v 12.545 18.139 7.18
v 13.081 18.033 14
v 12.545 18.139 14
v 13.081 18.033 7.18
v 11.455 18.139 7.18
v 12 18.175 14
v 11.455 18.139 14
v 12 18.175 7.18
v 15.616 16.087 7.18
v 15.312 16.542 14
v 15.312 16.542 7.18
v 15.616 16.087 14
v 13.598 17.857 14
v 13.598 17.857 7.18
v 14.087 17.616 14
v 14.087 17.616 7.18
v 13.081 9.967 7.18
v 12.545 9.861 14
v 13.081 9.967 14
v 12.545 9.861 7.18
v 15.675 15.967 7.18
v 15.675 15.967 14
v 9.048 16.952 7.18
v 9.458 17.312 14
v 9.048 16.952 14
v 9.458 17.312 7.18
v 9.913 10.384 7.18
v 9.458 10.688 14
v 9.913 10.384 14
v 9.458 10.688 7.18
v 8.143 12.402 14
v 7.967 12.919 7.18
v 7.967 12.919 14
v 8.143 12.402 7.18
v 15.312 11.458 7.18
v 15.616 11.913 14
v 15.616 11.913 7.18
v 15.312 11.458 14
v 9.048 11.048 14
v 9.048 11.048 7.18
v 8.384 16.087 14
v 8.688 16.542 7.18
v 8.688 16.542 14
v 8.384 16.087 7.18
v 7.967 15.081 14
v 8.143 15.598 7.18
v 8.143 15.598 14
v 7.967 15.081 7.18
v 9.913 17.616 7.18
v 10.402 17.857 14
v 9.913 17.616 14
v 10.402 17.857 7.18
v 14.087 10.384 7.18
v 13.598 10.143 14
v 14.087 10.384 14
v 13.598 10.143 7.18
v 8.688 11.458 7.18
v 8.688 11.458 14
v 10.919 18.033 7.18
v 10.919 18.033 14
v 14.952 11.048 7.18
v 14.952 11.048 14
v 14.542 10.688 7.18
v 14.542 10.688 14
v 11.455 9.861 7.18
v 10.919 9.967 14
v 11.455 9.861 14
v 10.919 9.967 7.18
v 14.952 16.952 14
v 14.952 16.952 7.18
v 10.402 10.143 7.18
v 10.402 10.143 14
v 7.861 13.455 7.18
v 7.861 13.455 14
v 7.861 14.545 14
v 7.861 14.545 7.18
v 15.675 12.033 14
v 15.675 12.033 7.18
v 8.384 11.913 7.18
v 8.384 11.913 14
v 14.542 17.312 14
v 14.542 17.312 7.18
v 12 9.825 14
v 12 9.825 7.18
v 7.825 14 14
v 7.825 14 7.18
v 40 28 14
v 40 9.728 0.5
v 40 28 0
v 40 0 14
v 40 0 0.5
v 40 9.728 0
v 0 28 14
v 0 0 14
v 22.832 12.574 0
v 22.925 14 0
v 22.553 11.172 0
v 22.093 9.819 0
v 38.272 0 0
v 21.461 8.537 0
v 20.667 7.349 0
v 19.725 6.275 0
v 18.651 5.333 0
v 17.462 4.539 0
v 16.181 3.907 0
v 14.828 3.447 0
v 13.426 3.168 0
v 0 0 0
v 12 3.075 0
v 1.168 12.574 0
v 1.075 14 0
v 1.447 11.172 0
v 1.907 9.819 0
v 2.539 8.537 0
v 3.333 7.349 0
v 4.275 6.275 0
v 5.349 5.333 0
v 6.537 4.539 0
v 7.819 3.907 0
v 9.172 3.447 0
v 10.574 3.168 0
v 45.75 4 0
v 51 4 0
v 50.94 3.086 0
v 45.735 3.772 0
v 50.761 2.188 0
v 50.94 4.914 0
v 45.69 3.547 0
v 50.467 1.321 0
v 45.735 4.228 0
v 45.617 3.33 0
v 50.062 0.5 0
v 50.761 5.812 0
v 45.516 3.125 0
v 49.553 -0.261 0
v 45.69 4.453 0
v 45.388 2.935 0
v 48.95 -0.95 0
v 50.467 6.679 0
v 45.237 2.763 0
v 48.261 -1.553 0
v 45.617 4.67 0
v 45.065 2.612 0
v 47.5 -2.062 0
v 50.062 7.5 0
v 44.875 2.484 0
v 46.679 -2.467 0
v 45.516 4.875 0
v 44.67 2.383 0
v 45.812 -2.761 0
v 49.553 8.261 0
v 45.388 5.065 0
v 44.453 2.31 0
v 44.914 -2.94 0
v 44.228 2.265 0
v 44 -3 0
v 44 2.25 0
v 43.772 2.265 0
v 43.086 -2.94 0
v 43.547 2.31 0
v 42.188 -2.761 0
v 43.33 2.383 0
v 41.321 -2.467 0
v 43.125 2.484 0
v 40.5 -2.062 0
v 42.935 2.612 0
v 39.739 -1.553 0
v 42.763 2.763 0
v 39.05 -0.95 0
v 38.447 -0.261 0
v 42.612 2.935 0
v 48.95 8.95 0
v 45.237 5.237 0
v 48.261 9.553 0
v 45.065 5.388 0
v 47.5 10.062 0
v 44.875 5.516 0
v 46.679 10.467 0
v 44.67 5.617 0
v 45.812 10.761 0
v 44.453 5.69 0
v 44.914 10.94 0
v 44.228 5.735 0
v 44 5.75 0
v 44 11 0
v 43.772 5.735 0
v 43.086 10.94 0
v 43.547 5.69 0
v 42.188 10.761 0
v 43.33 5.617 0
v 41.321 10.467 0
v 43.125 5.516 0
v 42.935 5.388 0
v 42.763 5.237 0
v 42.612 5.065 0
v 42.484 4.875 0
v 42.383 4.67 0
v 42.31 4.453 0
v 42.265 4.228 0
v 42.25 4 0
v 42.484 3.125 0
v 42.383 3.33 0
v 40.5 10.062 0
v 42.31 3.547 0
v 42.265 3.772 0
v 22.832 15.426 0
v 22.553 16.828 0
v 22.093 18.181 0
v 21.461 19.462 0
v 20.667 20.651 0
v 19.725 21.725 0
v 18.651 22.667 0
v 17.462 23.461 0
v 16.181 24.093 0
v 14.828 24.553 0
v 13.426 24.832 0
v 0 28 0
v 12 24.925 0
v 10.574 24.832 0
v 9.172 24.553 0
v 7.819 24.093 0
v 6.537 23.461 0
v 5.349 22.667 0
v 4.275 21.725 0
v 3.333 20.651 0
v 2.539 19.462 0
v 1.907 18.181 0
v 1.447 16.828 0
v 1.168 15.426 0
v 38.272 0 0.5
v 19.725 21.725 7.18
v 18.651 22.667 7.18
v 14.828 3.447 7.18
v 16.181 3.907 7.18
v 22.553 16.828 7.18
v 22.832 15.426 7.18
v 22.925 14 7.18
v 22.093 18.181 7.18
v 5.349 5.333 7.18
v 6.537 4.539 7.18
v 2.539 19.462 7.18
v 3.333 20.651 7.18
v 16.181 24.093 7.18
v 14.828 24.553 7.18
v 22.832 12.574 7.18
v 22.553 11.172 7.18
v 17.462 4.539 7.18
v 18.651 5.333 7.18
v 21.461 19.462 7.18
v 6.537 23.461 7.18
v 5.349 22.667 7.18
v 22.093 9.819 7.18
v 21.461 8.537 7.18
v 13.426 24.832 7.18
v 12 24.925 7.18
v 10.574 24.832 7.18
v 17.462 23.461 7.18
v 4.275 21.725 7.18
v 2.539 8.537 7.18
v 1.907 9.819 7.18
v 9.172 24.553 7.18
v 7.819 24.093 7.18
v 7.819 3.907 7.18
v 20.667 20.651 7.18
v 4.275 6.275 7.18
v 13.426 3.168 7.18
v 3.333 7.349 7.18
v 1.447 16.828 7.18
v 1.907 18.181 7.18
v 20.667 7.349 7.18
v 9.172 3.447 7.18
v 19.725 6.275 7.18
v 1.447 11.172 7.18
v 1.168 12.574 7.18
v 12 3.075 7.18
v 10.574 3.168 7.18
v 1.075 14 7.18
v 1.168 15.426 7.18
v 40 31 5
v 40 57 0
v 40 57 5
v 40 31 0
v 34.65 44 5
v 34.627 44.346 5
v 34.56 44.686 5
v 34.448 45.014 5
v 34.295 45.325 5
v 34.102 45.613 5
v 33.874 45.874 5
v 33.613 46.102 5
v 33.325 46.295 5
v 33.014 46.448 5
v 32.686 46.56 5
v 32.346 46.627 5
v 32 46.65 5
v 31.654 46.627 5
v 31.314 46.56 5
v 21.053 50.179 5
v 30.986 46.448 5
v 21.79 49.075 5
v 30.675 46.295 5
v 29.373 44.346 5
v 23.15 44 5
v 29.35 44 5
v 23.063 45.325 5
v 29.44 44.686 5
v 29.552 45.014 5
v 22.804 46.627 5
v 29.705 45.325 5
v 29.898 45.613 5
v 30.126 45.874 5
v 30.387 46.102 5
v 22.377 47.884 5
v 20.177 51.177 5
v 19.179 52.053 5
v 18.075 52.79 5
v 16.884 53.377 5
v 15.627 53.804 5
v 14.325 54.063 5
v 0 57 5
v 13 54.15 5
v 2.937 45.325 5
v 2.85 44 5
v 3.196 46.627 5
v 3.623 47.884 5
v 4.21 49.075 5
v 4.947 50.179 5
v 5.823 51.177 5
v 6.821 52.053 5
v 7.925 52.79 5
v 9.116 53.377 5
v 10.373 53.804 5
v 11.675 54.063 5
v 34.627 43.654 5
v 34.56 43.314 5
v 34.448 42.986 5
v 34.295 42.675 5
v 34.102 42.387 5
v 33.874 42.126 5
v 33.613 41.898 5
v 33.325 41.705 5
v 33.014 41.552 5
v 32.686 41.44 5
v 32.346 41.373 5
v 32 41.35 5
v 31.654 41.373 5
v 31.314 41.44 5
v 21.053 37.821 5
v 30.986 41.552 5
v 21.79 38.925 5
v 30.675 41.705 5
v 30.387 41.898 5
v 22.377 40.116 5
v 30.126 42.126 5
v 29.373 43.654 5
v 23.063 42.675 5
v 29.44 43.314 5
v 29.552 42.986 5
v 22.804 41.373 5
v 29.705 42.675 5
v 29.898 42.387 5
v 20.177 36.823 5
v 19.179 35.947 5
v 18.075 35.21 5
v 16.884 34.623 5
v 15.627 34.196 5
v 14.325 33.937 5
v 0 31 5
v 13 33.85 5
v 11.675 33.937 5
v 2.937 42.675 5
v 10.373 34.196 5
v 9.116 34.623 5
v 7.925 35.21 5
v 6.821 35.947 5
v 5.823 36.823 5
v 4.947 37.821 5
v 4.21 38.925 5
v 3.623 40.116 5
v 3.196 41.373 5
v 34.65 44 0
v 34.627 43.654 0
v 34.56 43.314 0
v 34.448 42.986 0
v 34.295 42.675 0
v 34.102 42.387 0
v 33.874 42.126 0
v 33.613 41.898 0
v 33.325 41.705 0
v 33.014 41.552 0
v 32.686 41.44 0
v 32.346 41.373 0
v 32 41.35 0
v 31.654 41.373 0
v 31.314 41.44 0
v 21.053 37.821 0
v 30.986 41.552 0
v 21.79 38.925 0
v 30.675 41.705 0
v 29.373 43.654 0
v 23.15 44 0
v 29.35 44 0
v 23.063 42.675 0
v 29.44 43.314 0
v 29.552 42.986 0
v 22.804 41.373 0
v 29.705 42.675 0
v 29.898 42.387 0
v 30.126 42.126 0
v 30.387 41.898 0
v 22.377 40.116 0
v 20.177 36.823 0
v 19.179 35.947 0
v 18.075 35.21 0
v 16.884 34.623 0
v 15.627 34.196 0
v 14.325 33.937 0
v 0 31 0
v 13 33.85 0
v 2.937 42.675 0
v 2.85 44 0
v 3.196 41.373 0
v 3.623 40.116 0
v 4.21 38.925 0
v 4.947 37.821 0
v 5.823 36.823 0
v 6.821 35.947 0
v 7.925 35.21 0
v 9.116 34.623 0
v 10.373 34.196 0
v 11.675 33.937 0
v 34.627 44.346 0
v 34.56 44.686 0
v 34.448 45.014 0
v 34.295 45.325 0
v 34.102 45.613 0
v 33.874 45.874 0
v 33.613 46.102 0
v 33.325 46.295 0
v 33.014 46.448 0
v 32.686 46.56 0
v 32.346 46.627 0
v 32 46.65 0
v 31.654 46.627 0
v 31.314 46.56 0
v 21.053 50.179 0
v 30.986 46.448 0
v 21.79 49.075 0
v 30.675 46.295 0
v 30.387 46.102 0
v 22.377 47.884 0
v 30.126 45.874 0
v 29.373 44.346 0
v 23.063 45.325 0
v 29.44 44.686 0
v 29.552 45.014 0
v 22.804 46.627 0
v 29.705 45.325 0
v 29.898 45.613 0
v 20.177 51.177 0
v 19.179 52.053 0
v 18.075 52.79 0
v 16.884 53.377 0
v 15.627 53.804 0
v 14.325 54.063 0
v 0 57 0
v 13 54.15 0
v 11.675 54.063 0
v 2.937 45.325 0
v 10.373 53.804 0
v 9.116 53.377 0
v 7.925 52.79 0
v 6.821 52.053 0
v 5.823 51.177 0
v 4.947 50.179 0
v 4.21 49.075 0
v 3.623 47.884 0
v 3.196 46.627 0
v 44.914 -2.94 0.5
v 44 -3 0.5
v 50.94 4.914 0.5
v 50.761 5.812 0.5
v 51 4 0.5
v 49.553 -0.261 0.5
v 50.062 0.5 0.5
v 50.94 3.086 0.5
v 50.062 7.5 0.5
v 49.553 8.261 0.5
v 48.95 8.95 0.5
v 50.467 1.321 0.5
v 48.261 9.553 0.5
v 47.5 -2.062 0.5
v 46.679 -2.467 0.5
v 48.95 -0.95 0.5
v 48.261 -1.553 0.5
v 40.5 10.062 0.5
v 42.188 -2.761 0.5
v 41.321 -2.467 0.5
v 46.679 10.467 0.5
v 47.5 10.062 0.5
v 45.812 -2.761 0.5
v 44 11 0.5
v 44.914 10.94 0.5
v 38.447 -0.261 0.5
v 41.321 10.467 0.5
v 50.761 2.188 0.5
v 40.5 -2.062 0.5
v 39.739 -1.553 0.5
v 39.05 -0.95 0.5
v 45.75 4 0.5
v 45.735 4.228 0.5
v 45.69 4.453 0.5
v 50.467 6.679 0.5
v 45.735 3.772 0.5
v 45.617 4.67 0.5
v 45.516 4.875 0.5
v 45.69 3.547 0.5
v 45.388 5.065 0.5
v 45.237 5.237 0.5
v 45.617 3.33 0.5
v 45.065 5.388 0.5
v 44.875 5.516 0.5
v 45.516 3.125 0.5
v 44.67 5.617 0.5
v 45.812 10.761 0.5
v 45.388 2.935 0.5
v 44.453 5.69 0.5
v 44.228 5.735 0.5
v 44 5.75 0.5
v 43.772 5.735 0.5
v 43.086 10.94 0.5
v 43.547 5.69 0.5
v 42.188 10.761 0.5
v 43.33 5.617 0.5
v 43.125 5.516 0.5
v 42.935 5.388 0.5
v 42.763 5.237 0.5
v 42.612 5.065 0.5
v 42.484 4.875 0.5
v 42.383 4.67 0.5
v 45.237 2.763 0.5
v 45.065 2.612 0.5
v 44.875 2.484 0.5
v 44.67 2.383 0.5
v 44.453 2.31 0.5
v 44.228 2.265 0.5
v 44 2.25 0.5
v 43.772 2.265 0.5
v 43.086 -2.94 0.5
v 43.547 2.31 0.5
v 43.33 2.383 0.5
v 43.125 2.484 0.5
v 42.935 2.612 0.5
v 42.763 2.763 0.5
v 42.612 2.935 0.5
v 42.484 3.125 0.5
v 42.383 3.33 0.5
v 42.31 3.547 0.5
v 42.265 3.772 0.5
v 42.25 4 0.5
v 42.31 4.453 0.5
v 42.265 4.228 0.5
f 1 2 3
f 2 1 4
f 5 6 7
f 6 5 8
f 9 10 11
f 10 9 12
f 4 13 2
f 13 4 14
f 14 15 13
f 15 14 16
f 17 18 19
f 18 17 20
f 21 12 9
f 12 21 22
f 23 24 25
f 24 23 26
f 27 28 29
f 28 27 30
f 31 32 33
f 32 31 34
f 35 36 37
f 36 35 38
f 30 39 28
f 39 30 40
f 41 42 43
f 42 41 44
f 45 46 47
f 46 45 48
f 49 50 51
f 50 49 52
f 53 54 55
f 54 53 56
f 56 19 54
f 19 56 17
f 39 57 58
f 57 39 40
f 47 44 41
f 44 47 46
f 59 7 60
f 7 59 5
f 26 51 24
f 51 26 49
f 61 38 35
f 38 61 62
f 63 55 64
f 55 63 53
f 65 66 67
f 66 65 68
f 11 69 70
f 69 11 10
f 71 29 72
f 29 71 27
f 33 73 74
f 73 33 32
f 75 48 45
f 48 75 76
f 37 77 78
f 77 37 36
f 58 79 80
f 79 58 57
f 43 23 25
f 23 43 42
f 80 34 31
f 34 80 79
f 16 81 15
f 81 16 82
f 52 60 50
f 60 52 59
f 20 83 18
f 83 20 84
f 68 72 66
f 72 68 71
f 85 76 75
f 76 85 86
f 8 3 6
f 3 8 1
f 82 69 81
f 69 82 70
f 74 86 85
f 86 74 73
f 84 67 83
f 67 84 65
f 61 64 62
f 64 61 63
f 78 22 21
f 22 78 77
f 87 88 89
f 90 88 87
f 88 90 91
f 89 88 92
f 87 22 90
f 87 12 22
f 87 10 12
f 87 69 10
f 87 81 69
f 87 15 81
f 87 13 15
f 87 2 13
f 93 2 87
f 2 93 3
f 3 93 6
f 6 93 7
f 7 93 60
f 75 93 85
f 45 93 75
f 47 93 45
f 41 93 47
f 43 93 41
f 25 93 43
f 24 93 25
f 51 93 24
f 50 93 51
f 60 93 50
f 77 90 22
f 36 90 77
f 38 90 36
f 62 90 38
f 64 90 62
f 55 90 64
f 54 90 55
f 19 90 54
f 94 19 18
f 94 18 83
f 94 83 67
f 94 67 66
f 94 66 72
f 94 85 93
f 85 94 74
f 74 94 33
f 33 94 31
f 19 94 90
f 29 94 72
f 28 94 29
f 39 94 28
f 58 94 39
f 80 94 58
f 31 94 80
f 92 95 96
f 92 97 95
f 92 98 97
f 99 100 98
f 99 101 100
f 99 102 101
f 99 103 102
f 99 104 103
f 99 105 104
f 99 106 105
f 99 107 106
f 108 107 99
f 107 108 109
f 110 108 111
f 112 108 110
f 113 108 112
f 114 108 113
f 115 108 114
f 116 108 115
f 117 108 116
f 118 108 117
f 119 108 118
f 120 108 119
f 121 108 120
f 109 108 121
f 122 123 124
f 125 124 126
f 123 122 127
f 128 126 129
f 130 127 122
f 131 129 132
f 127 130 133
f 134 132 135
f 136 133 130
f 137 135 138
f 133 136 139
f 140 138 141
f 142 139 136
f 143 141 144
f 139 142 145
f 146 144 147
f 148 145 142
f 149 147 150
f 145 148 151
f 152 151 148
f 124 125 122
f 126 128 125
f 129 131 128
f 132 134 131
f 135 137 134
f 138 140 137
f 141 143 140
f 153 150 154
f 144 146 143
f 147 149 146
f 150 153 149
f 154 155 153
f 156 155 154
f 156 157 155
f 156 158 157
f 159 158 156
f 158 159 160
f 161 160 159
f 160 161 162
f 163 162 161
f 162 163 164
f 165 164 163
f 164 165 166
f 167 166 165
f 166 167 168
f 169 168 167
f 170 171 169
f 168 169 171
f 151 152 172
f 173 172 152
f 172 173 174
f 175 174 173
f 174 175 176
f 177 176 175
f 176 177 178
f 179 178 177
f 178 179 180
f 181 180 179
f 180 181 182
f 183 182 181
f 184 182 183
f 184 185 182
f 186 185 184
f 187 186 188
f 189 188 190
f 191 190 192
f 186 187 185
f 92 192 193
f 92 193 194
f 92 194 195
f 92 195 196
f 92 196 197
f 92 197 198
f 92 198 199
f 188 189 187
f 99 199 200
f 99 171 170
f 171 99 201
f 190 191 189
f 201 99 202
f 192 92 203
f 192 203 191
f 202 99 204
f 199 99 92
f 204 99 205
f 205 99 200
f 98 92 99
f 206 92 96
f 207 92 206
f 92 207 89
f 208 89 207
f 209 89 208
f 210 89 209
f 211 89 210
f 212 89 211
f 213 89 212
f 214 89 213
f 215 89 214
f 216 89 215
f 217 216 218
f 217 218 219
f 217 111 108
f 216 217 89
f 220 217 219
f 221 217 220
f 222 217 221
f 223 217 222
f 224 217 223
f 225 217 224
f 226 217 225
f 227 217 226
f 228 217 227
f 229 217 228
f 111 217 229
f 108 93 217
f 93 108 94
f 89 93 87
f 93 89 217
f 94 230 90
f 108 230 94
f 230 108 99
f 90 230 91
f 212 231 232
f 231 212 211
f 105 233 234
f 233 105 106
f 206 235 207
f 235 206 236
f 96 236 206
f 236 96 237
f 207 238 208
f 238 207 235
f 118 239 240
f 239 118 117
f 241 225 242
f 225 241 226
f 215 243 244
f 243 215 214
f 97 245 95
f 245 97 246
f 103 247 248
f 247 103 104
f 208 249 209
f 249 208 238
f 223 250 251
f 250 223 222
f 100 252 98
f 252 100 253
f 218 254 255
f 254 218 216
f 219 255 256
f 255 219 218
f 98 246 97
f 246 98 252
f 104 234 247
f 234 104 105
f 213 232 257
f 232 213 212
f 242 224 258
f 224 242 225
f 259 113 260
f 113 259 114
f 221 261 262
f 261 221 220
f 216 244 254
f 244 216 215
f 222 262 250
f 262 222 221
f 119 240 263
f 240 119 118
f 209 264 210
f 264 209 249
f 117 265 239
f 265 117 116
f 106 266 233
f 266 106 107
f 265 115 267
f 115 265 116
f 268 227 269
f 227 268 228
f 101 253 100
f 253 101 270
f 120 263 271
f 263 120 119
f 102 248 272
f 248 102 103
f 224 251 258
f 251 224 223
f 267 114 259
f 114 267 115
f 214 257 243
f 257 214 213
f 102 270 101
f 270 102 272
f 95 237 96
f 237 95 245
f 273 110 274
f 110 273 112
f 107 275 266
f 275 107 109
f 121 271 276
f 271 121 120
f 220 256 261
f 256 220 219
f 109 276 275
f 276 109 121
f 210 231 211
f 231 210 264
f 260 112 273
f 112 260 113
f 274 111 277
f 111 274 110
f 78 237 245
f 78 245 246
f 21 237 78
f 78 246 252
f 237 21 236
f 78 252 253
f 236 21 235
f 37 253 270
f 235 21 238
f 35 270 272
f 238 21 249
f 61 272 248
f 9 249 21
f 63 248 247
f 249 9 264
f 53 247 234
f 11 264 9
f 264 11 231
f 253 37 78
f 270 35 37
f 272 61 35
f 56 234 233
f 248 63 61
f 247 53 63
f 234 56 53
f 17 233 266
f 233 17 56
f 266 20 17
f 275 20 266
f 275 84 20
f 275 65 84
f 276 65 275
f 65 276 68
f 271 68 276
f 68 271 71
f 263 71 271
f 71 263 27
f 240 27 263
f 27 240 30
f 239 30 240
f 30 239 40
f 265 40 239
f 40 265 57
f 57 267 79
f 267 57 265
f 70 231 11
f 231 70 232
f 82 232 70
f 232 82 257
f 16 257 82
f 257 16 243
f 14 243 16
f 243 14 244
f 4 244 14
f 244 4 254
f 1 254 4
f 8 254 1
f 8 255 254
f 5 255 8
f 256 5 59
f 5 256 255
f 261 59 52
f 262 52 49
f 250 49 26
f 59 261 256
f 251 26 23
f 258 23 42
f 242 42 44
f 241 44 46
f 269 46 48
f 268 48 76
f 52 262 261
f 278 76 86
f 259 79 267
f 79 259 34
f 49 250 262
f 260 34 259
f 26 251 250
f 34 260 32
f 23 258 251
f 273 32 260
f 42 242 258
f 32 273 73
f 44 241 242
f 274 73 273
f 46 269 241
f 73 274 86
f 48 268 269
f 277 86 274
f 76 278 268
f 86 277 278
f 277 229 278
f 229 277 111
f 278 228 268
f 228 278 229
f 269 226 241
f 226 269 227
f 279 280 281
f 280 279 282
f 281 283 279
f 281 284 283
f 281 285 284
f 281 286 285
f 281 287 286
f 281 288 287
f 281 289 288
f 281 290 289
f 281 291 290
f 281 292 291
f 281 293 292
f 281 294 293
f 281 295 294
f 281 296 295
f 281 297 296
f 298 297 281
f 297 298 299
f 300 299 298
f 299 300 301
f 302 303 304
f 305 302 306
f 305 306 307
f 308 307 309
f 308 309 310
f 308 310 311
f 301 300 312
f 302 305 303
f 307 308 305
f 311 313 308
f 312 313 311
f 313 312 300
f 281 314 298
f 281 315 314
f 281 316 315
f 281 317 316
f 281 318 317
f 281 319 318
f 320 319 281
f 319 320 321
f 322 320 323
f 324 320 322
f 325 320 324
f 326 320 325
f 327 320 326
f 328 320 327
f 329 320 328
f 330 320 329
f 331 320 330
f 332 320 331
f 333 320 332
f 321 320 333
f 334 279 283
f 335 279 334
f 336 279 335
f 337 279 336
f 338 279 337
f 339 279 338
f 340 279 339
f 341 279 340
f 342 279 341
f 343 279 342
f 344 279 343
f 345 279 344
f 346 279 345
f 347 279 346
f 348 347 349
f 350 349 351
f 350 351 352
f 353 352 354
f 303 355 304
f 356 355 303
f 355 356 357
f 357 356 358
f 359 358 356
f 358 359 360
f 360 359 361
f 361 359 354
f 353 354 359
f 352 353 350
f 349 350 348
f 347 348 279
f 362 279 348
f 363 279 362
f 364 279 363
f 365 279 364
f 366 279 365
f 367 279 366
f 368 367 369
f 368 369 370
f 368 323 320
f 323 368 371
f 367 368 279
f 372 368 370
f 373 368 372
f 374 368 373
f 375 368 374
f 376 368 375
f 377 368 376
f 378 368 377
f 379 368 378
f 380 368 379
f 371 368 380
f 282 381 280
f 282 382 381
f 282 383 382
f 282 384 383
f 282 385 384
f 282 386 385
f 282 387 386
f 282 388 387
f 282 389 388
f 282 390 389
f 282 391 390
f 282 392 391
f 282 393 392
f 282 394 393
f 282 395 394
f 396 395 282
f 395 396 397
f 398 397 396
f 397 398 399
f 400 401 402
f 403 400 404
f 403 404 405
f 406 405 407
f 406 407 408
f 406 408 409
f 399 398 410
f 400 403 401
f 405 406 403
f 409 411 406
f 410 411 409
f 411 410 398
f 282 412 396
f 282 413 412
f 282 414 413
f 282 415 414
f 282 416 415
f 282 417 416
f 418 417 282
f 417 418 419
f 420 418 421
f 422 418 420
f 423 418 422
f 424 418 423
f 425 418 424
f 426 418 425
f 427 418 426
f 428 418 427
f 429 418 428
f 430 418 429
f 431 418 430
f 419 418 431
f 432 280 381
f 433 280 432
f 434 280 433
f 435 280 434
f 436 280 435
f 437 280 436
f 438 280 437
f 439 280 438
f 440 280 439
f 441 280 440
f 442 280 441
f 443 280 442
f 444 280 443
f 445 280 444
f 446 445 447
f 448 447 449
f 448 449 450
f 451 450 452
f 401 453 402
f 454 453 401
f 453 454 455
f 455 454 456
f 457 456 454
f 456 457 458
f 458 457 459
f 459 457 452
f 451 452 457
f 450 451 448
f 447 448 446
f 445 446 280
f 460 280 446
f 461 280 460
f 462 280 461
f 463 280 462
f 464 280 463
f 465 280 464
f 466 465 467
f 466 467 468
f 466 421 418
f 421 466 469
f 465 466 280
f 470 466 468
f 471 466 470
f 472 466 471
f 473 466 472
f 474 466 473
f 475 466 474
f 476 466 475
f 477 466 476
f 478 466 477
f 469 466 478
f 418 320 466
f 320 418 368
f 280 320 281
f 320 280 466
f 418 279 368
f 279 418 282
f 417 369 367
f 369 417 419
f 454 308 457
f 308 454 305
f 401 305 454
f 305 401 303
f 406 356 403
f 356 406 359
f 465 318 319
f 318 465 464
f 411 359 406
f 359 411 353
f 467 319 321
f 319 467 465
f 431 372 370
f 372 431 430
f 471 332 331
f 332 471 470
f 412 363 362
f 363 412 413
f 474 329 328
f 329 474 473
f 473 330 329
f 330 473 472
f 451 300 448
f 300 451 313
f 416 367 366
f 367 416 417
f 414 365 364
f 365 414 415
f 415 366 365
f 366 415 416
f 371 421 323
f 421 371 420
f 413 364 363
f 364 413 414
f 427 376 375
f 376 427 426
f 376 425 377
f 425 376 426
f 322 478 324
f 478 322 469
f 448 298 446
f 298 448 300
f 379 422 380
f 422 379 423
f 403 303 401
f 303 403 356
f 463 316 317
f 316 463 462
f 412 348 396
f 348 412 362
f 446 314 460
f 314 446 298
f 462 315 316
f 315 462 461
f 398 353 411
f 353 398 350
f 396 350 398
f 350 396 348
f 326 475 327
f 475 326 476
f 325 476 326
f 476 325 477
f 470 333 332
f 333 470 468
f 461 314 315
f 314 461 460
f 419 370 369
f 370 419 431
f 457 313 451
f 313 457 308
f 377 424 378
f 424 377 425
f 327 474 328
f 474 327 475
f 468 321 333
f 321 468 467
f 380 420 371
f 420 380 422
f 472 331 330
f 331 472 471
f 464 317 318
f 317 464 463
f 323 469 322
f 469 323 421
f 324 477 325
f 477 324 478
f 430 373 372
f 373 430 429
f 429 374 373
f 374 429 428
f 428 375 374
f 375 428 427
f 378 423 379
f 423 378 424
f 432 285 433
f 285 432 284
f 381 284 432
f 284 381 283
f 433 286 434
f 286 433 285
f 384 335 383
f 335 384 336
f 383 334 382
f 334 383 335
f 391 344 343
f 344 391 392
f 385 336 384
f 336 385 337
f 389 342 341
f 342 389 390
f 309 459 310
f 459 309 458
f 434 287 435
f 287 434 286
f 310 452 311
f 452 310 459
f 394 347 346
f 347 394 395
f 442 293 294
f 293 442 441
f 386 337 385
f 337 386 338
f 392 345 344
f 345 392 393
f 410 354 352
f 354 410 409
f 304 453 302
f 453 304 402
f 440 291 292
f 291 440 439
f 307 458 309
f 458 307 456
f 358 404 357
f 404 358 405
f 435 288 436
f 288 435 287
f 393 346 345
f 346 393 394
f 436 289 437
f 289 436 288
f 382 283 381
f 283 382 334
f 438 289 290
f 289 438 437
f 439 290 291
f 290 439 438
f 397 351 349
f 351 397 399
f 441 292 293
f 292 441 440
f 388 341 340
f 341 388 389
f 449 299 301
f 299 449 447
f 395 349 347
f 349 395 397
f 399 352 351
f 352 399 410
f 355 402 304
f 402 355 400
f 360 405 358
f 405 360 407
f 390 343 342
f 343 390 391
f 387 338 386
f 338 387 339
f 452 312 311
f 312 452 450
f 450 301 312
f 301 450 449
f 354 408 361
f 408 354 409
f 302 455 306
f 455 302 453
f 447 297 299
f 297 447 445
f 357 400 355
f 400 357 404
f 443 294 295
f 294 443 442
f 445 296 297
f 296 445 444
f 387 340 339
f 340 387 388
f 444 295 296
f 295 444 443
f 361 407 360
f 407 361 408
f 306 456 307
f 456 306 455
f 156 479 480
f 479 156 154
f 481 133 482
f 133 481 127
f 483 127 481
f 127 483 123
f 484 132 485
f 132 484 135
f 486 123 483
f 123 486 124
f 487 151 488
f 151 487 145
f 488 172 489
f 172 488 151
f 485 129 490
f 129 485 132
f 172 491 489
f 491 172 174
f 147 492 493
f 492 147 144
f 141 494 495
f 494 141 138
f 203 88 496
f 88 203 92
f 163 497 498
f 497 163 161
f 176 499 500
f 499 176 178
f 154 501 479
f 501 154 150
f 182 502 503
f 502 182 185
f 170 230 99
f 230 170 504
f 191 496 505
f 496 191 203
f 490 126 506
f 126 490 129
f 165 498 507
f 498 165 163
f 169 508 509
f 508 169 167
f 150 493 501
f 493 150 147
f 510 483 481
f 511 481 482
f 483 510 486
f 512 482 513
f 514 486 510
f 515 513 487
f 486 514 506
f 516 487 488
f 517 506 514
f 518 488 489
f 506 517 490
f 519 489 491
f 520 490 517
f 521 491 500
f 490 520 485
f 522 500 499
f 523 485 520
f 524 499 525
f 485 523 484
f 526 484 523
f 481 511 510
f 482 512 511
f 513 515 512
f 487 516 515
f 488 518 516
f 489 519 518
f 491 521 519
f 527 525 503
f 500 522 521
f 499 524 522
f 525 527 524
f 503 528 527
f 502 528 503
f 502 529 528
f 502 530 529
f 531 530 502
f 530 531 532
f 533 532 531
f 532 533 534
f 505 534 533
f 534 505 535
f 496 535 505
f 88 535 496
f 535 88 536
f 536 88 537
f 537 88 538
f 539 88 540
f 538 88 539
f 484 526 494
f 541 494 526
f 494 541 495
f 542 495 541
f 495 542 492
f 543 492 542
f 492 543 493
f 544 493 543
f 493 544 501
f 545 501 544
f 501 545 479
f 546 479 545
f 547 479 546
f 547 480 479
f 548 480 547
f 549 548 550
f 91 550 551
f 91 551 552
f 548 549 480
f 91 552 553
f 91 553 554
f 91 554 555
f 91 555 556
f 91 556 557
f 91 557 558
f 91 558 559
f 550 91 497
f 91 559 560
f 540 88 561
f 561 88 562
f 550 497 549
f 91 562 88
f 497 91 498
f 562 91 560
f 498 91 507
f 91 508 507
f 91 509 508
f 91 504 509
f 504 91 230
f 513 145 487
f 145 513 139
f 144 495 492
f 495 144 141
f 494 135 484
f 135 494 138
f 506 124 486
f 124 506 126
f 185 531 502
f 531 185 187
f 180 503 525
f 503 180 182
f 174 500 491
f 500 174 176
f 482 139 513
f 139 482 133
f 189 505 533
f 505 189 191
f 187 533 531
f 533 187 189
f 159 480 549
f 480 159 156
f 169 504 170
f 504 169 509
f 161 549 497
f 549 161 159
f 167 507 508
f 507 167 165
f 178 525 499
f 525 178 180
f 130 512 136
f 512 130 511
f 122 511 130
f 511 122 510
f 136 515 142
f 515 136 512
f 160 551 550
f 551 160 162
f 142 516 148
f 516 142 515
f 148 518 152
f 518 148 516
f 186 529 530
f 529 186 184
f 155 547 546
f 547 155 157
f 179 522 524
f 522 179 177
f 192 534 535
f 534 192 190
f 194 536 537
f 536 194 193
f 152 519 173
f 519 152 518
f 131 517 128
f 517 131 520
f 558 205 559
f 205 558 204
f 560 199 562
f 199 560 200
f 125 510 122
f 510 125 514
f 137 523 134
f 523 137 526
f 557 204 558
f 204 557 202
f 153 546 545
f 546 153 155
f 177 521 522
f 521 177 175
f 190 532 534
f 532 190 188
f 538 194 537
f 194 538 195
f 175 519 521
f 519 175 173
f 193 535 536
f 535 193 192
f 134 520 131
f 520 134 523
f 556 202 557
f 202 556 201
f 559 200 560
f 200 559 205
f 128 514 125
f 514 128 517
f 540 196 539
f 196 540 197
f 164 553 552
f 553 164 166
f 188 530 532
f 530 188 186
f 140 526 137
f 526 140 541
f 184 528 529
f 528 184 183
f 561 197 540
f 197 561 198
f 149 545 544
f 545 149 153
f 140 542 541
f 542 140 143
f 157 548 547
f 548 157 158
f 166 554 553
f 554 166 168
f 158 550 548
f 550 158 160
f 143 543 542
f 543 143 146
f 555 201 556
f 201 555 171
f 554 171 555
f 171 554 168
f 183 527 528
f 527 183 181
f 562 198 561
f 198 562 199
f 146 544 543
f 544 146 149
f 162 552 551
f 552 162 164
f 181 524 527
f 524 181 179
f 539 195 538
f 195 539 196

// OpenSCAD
// file: parameters.scad
// =============================================================================
// Gen-CA — nightly 2026-10-13 (physics_scorer, honest magpylib watts)
// Break the plate limit instead of the physics: the 2026-10-11 scans showed watts keep rising with machine size, but Ø194 was the largest one-piece stator/rotor set that fits one 410 mm plate. Gen-CA makes the steel disc the structural rotor and prints the magnet carrier as 8 bolt-on arcs per rotor plus a separate D-flat hub, opens the stator centre, and prints the 12 bobbin bases in place inside their stator bays, so a much bigger R84 / Ø226 machine (bobbins r64–104, 4.95 mm copper, 7.55 mm magnet gap) still packs on ONE plate.
// Clocking 0 deg (magnets N facing S) + D-flat keyed bore + index notch + flip-symmetric hole map.
// Windable 2-piece bobbin; turns = physics_scorer turns_fit; copper only between flanges.
// Steel back-iron: 2× Ø194 × 4.76 mm (3/16") mild-steel discs (steel_backiron_disc.dxf); magnets sit ON the steel
// (through-pockets) -> score with --back-iron. Night 2026-10-13.
// =============================================================================
topology            = "dual_rotor";

// --- Wire / winding (physics_scorer winding-fit) -------------------------------
wire_awg            = 26;
wire_od             = 0.45;     // insulated OD mm (bare 0.405)
fill_realistic      = 0.65;     // insulated-wire area / window (DENSE layered wind with a jig; scorer cap 0.65)
turns               = 366;       // = physics_scorer turns_fit (do NOT raise)
coil_former_type    = "bobbin";
coil_core_inset     = 18.10;     // radial copper build: hub = copper boundary inset by this
wind_build_axial    = 0.0;      // nothing proud of the flanges
wind_build_radial   = 0.0;

// --- Bobbin (base + lid) ---------------------------------------------------------
coil_id_r           = 64.00;    // copper boundary sector
coil_od_r           = 104.00;
span_deg            = 26.87;    // = pitch - 2*asin((wall+0.85)/coil_id_r) -> >=1.2 mm stator web
former_web          = 4.95;     // copper height between flanges (TALL copper: steel keeps Bz up)
flange_t            = 0.80;     // >= 0.8 mm FDM wall rule (tall winds push on the flanges)
wall                = 0.80;     // flange lip beyond copper
former_bare_h       = former_web + 2 * flange_t;
coil_envelope_h     = former_bare_h + 2 * wind_build_axial;
tab_w               = 7.0;
tab_len             = 7.0;
tab_h               = former_bare_h / 2;
pin_d               = 1.9;      // 1.75 mm filament locating pin
coil_mount_r        = coil_od_r + 0.2 + 4.0;
lead_y              = 1.6;
lead_slot_w         = 0.9;
lead_groove_d       = 0.6;

// --- Gap -------------------------------------------------------------------------
run_clear           = 0.50;     // rotor face -> flange
gap_spacer_h        = run_clear + wind_build_axial;
m2m                 = coil_envelope_h + 2 * run_clear;   // rotor face to rotor face (= gap_sleeve length)

// --- Stator ----------------------------------------------------------------------
coil_stations       = 12;
bay_clear           = 0.35;     // 0.35 mm: bobbin BASES print IN PLACE inside the stator bays (print-in-place gap), then pop out
stator_thick        = former_bare_h;                        // bobbins flush both faces
stator_od           = 226;
shaft_clear_stator  = 14.0;     // stator is static; gap sleeve OD 12 spins inside
stator_ir           = 58.85;    // ANNULAR stator: open centre (nested one-plate pack); inner rim 4.0 mm

// --- Rotor(s) --------------------------------------------------------------------
magnet_Br           = 1.43;     // N52
magnet_d_large      = 20.0;
magnet_h_large      = 5.0;      // one O20x5 per pocket
magnet_h_small      = 5.0;      // unused: no O5 pockets in this kit
halbach_magnetisation = "none";  // NO O5 assist magnets in this kit (scan: they lower the 4-pole score)
rotor_b_same_axis   = true;     // same-index magnets share one axis: N faces S across the gap
large_pocket_d      = 20.3;
small_pocket_d      = 5.3;
pocket_h            = 5.00;     // THROUGH the carrier: magnet back face sits on the steel disc (FLUSH seat: carrier = magnet height, magnet face level with the rotor face)
large_n             = 8;
R_large             = 84.0;
small_r_list        = [];       // no O5 pockets
carrier_od          = 194.0;
ring_ir             = 70.85;    // RING rotor: PLA magnet ring r ring_ir..carrier_od/2 (steel disc = structural rotor)
hub_flange_od       = 74.0;     // separate rotor_hub flange (inside the ring, flush with the ring face)
csk_d               = 6.6;      // M3 countersunk head pocket (ISO 10642 head 6.0 nominal) on the stator face
csk_depth           = 1.55;     // = (csk_d - m3_clear) / 2: 90 deg cone; head sits 0.3 mm below the face
n_seg               = 8;        // magnet-carrier ARCS per rotor (segmented carrier)
seg_deg             = 360 / n_seg;
seg_start           = -22.5;   // arc edge angle (between pocket 0 and its clamp bolt)
seg_kerf_deg        = 0.4;      // gap between neighbouring arcs on the steel
carrier_thick       = pocket_h;
hub_h               = 12.0;     // > steel_t + insert: radial set-screw clears the steel
hub_od              = 24.0;     // slim hub so the M4 brace rods fit at R~18 inside the coil ring
hub_insert_d        = 4.0;      // M3 heat-set insert, radial, bears on the D-flat
rotor_b_offset_deg  = 0.0;      // CLOCKING: magnets directly opposite
shaft_key           = "dflat";
dflat_depth         = 0.5;      // 8 mm shaft with 0.5 mm flat (7.5 across flat)
index_notch_d       = 3.0;

// --- Steel back-iron (buyable laser-cut) -------------------------------------------
steel_t             = 4.76;      // mild steel thickness (image method ignores it; sized from steel_flux.py so the return path stays well below saturation)
steel_center_hole   = 26.0;     // slips over the rotor hub (OD 24)
steel_od            = carrier_od;   // steel disc OD = rotor carrier OD

// --- Modular MAX interface ----------------------------------------------------------
shaft_bore          = 8.35;
dflat_x             = 4.0 - dflat_depth + (shaft_bore - 8.0) / 2;
bearing_d           = 21.85;
bearing_h           = 7.2;
m3_clear            = 3.5;
bolt_r_inner        = 30.0;     // M3 steel-disc clamp bolts (inside the magnet ring)
bolt_n_inner        = 4;
bolt_inner_angles   = [0, 90, 180, 270];
bolt_r_outer        = 84.0;     // second M3 steel-disc clamp ring
bolt_outer_angles   = [22.5, 67.5, 112.5, 157.5, 202.5, 247.5, 292.5, 337.5];
flange_bolt_r       = 107.5;     // frame rods: OUTSIDE the rotor OD (rotors spin inside them)
flange_bolt_n       = 4;
flange_bolt_offset  = 45.00;    // between coil stations -> never cuts a lead groove/tab
brace_r             = 18.0;
brace_d             = 4.3;      // temporary M4 jack rods (assembly only)
brace_n             = 4;
brace_angles        = [45, 135, 225, 315];          // flip-symmetric

spacer_pad_od       = 14.0;
spacer_pad_id       = m3_clear;
endbell_od          = 225.0;
endbell_thick       = 8.0;
endbell_shaft_clear = 10.0;
collar_h            = 10.0;
standoff_od         = 9.0;
frame_standoff_h    = run_clear + carrier_thick + hub_h + collar_h + 2.0;
sleeve_od           = 12.0;
plate_max_mm        = 410;

$fn = 64;
// main file
// Gen-CA — fit coupon: O20/O5 THROUGH pockets at carrier thickness (test on a steel offcut), 608 seat,
// D-flat bore, gap shim, and one bobbin-bay slice (bobbin footprint + bay_clear) to test former fit.
include <parameters.scad>;
$fn = 48;
// D-flat keyed bore: flat faces +X (angle 0 = magnet pocket 0 = index notch)
module dflat_bore(h) {
    intersection() {
        cylinder(d=shaft_bore, h=h);
        translate([-shaft_bore, -shaft_bore, 0]) cube([shaft_bore + dflat_x, 2*shaft_bore, h]);
    }
}
module sector_2d(r_in, r_out, ang) {
    polygon([
        for (a = [-ang/2 : ang/24 : ang/2]) [r_in*cos(a), r_in*sin(a)],
        for (a = [ang/2 : -ang/24 : -ang/2]) [r_out*cos(a), r_out*sin(a)]
    ]);
}
module footprint_2d() { offset(r=wall) sector_2d(coil_id_r, coil_od_r, span_deg); }
module hub_2d()       { offset(delta=-coil_core_inset) sector_2d(coil_id_r, coil_od_r, span_deg); }

block_w = 40; block_d = 28; block_h = 14;
difference() {
    cube([block_w, block_d, block_h]);
    translate([12, block_d/2, -0.02]) cylinder(d=bearing_d, h=bearing_h);
    translate([12, block_d/2, -0.1]) dflat_bore(block_h + 1);
}
translate([0, block_d + 3, 0]) difference() {
    cube([40, 26, carrier_thick]);
    translate([13, 13, -0.1]) cylinder(d=large_pocket_d, h=carrier_thick + 0.2);
    translate([32, 13, -0.1]) cylinder(d=small_pocket_d, h=carrier_thick + 0.2);
}
translate([block_w + 4, 4, 0])
    difference() {
        cylinder(d=spacer_pad_od, h=gap_spacer_h);
        translate([0, 0, -0.1]) cylinder(d=spacer_pad_id, h=gap_spacer_h + 0.2);
    }
